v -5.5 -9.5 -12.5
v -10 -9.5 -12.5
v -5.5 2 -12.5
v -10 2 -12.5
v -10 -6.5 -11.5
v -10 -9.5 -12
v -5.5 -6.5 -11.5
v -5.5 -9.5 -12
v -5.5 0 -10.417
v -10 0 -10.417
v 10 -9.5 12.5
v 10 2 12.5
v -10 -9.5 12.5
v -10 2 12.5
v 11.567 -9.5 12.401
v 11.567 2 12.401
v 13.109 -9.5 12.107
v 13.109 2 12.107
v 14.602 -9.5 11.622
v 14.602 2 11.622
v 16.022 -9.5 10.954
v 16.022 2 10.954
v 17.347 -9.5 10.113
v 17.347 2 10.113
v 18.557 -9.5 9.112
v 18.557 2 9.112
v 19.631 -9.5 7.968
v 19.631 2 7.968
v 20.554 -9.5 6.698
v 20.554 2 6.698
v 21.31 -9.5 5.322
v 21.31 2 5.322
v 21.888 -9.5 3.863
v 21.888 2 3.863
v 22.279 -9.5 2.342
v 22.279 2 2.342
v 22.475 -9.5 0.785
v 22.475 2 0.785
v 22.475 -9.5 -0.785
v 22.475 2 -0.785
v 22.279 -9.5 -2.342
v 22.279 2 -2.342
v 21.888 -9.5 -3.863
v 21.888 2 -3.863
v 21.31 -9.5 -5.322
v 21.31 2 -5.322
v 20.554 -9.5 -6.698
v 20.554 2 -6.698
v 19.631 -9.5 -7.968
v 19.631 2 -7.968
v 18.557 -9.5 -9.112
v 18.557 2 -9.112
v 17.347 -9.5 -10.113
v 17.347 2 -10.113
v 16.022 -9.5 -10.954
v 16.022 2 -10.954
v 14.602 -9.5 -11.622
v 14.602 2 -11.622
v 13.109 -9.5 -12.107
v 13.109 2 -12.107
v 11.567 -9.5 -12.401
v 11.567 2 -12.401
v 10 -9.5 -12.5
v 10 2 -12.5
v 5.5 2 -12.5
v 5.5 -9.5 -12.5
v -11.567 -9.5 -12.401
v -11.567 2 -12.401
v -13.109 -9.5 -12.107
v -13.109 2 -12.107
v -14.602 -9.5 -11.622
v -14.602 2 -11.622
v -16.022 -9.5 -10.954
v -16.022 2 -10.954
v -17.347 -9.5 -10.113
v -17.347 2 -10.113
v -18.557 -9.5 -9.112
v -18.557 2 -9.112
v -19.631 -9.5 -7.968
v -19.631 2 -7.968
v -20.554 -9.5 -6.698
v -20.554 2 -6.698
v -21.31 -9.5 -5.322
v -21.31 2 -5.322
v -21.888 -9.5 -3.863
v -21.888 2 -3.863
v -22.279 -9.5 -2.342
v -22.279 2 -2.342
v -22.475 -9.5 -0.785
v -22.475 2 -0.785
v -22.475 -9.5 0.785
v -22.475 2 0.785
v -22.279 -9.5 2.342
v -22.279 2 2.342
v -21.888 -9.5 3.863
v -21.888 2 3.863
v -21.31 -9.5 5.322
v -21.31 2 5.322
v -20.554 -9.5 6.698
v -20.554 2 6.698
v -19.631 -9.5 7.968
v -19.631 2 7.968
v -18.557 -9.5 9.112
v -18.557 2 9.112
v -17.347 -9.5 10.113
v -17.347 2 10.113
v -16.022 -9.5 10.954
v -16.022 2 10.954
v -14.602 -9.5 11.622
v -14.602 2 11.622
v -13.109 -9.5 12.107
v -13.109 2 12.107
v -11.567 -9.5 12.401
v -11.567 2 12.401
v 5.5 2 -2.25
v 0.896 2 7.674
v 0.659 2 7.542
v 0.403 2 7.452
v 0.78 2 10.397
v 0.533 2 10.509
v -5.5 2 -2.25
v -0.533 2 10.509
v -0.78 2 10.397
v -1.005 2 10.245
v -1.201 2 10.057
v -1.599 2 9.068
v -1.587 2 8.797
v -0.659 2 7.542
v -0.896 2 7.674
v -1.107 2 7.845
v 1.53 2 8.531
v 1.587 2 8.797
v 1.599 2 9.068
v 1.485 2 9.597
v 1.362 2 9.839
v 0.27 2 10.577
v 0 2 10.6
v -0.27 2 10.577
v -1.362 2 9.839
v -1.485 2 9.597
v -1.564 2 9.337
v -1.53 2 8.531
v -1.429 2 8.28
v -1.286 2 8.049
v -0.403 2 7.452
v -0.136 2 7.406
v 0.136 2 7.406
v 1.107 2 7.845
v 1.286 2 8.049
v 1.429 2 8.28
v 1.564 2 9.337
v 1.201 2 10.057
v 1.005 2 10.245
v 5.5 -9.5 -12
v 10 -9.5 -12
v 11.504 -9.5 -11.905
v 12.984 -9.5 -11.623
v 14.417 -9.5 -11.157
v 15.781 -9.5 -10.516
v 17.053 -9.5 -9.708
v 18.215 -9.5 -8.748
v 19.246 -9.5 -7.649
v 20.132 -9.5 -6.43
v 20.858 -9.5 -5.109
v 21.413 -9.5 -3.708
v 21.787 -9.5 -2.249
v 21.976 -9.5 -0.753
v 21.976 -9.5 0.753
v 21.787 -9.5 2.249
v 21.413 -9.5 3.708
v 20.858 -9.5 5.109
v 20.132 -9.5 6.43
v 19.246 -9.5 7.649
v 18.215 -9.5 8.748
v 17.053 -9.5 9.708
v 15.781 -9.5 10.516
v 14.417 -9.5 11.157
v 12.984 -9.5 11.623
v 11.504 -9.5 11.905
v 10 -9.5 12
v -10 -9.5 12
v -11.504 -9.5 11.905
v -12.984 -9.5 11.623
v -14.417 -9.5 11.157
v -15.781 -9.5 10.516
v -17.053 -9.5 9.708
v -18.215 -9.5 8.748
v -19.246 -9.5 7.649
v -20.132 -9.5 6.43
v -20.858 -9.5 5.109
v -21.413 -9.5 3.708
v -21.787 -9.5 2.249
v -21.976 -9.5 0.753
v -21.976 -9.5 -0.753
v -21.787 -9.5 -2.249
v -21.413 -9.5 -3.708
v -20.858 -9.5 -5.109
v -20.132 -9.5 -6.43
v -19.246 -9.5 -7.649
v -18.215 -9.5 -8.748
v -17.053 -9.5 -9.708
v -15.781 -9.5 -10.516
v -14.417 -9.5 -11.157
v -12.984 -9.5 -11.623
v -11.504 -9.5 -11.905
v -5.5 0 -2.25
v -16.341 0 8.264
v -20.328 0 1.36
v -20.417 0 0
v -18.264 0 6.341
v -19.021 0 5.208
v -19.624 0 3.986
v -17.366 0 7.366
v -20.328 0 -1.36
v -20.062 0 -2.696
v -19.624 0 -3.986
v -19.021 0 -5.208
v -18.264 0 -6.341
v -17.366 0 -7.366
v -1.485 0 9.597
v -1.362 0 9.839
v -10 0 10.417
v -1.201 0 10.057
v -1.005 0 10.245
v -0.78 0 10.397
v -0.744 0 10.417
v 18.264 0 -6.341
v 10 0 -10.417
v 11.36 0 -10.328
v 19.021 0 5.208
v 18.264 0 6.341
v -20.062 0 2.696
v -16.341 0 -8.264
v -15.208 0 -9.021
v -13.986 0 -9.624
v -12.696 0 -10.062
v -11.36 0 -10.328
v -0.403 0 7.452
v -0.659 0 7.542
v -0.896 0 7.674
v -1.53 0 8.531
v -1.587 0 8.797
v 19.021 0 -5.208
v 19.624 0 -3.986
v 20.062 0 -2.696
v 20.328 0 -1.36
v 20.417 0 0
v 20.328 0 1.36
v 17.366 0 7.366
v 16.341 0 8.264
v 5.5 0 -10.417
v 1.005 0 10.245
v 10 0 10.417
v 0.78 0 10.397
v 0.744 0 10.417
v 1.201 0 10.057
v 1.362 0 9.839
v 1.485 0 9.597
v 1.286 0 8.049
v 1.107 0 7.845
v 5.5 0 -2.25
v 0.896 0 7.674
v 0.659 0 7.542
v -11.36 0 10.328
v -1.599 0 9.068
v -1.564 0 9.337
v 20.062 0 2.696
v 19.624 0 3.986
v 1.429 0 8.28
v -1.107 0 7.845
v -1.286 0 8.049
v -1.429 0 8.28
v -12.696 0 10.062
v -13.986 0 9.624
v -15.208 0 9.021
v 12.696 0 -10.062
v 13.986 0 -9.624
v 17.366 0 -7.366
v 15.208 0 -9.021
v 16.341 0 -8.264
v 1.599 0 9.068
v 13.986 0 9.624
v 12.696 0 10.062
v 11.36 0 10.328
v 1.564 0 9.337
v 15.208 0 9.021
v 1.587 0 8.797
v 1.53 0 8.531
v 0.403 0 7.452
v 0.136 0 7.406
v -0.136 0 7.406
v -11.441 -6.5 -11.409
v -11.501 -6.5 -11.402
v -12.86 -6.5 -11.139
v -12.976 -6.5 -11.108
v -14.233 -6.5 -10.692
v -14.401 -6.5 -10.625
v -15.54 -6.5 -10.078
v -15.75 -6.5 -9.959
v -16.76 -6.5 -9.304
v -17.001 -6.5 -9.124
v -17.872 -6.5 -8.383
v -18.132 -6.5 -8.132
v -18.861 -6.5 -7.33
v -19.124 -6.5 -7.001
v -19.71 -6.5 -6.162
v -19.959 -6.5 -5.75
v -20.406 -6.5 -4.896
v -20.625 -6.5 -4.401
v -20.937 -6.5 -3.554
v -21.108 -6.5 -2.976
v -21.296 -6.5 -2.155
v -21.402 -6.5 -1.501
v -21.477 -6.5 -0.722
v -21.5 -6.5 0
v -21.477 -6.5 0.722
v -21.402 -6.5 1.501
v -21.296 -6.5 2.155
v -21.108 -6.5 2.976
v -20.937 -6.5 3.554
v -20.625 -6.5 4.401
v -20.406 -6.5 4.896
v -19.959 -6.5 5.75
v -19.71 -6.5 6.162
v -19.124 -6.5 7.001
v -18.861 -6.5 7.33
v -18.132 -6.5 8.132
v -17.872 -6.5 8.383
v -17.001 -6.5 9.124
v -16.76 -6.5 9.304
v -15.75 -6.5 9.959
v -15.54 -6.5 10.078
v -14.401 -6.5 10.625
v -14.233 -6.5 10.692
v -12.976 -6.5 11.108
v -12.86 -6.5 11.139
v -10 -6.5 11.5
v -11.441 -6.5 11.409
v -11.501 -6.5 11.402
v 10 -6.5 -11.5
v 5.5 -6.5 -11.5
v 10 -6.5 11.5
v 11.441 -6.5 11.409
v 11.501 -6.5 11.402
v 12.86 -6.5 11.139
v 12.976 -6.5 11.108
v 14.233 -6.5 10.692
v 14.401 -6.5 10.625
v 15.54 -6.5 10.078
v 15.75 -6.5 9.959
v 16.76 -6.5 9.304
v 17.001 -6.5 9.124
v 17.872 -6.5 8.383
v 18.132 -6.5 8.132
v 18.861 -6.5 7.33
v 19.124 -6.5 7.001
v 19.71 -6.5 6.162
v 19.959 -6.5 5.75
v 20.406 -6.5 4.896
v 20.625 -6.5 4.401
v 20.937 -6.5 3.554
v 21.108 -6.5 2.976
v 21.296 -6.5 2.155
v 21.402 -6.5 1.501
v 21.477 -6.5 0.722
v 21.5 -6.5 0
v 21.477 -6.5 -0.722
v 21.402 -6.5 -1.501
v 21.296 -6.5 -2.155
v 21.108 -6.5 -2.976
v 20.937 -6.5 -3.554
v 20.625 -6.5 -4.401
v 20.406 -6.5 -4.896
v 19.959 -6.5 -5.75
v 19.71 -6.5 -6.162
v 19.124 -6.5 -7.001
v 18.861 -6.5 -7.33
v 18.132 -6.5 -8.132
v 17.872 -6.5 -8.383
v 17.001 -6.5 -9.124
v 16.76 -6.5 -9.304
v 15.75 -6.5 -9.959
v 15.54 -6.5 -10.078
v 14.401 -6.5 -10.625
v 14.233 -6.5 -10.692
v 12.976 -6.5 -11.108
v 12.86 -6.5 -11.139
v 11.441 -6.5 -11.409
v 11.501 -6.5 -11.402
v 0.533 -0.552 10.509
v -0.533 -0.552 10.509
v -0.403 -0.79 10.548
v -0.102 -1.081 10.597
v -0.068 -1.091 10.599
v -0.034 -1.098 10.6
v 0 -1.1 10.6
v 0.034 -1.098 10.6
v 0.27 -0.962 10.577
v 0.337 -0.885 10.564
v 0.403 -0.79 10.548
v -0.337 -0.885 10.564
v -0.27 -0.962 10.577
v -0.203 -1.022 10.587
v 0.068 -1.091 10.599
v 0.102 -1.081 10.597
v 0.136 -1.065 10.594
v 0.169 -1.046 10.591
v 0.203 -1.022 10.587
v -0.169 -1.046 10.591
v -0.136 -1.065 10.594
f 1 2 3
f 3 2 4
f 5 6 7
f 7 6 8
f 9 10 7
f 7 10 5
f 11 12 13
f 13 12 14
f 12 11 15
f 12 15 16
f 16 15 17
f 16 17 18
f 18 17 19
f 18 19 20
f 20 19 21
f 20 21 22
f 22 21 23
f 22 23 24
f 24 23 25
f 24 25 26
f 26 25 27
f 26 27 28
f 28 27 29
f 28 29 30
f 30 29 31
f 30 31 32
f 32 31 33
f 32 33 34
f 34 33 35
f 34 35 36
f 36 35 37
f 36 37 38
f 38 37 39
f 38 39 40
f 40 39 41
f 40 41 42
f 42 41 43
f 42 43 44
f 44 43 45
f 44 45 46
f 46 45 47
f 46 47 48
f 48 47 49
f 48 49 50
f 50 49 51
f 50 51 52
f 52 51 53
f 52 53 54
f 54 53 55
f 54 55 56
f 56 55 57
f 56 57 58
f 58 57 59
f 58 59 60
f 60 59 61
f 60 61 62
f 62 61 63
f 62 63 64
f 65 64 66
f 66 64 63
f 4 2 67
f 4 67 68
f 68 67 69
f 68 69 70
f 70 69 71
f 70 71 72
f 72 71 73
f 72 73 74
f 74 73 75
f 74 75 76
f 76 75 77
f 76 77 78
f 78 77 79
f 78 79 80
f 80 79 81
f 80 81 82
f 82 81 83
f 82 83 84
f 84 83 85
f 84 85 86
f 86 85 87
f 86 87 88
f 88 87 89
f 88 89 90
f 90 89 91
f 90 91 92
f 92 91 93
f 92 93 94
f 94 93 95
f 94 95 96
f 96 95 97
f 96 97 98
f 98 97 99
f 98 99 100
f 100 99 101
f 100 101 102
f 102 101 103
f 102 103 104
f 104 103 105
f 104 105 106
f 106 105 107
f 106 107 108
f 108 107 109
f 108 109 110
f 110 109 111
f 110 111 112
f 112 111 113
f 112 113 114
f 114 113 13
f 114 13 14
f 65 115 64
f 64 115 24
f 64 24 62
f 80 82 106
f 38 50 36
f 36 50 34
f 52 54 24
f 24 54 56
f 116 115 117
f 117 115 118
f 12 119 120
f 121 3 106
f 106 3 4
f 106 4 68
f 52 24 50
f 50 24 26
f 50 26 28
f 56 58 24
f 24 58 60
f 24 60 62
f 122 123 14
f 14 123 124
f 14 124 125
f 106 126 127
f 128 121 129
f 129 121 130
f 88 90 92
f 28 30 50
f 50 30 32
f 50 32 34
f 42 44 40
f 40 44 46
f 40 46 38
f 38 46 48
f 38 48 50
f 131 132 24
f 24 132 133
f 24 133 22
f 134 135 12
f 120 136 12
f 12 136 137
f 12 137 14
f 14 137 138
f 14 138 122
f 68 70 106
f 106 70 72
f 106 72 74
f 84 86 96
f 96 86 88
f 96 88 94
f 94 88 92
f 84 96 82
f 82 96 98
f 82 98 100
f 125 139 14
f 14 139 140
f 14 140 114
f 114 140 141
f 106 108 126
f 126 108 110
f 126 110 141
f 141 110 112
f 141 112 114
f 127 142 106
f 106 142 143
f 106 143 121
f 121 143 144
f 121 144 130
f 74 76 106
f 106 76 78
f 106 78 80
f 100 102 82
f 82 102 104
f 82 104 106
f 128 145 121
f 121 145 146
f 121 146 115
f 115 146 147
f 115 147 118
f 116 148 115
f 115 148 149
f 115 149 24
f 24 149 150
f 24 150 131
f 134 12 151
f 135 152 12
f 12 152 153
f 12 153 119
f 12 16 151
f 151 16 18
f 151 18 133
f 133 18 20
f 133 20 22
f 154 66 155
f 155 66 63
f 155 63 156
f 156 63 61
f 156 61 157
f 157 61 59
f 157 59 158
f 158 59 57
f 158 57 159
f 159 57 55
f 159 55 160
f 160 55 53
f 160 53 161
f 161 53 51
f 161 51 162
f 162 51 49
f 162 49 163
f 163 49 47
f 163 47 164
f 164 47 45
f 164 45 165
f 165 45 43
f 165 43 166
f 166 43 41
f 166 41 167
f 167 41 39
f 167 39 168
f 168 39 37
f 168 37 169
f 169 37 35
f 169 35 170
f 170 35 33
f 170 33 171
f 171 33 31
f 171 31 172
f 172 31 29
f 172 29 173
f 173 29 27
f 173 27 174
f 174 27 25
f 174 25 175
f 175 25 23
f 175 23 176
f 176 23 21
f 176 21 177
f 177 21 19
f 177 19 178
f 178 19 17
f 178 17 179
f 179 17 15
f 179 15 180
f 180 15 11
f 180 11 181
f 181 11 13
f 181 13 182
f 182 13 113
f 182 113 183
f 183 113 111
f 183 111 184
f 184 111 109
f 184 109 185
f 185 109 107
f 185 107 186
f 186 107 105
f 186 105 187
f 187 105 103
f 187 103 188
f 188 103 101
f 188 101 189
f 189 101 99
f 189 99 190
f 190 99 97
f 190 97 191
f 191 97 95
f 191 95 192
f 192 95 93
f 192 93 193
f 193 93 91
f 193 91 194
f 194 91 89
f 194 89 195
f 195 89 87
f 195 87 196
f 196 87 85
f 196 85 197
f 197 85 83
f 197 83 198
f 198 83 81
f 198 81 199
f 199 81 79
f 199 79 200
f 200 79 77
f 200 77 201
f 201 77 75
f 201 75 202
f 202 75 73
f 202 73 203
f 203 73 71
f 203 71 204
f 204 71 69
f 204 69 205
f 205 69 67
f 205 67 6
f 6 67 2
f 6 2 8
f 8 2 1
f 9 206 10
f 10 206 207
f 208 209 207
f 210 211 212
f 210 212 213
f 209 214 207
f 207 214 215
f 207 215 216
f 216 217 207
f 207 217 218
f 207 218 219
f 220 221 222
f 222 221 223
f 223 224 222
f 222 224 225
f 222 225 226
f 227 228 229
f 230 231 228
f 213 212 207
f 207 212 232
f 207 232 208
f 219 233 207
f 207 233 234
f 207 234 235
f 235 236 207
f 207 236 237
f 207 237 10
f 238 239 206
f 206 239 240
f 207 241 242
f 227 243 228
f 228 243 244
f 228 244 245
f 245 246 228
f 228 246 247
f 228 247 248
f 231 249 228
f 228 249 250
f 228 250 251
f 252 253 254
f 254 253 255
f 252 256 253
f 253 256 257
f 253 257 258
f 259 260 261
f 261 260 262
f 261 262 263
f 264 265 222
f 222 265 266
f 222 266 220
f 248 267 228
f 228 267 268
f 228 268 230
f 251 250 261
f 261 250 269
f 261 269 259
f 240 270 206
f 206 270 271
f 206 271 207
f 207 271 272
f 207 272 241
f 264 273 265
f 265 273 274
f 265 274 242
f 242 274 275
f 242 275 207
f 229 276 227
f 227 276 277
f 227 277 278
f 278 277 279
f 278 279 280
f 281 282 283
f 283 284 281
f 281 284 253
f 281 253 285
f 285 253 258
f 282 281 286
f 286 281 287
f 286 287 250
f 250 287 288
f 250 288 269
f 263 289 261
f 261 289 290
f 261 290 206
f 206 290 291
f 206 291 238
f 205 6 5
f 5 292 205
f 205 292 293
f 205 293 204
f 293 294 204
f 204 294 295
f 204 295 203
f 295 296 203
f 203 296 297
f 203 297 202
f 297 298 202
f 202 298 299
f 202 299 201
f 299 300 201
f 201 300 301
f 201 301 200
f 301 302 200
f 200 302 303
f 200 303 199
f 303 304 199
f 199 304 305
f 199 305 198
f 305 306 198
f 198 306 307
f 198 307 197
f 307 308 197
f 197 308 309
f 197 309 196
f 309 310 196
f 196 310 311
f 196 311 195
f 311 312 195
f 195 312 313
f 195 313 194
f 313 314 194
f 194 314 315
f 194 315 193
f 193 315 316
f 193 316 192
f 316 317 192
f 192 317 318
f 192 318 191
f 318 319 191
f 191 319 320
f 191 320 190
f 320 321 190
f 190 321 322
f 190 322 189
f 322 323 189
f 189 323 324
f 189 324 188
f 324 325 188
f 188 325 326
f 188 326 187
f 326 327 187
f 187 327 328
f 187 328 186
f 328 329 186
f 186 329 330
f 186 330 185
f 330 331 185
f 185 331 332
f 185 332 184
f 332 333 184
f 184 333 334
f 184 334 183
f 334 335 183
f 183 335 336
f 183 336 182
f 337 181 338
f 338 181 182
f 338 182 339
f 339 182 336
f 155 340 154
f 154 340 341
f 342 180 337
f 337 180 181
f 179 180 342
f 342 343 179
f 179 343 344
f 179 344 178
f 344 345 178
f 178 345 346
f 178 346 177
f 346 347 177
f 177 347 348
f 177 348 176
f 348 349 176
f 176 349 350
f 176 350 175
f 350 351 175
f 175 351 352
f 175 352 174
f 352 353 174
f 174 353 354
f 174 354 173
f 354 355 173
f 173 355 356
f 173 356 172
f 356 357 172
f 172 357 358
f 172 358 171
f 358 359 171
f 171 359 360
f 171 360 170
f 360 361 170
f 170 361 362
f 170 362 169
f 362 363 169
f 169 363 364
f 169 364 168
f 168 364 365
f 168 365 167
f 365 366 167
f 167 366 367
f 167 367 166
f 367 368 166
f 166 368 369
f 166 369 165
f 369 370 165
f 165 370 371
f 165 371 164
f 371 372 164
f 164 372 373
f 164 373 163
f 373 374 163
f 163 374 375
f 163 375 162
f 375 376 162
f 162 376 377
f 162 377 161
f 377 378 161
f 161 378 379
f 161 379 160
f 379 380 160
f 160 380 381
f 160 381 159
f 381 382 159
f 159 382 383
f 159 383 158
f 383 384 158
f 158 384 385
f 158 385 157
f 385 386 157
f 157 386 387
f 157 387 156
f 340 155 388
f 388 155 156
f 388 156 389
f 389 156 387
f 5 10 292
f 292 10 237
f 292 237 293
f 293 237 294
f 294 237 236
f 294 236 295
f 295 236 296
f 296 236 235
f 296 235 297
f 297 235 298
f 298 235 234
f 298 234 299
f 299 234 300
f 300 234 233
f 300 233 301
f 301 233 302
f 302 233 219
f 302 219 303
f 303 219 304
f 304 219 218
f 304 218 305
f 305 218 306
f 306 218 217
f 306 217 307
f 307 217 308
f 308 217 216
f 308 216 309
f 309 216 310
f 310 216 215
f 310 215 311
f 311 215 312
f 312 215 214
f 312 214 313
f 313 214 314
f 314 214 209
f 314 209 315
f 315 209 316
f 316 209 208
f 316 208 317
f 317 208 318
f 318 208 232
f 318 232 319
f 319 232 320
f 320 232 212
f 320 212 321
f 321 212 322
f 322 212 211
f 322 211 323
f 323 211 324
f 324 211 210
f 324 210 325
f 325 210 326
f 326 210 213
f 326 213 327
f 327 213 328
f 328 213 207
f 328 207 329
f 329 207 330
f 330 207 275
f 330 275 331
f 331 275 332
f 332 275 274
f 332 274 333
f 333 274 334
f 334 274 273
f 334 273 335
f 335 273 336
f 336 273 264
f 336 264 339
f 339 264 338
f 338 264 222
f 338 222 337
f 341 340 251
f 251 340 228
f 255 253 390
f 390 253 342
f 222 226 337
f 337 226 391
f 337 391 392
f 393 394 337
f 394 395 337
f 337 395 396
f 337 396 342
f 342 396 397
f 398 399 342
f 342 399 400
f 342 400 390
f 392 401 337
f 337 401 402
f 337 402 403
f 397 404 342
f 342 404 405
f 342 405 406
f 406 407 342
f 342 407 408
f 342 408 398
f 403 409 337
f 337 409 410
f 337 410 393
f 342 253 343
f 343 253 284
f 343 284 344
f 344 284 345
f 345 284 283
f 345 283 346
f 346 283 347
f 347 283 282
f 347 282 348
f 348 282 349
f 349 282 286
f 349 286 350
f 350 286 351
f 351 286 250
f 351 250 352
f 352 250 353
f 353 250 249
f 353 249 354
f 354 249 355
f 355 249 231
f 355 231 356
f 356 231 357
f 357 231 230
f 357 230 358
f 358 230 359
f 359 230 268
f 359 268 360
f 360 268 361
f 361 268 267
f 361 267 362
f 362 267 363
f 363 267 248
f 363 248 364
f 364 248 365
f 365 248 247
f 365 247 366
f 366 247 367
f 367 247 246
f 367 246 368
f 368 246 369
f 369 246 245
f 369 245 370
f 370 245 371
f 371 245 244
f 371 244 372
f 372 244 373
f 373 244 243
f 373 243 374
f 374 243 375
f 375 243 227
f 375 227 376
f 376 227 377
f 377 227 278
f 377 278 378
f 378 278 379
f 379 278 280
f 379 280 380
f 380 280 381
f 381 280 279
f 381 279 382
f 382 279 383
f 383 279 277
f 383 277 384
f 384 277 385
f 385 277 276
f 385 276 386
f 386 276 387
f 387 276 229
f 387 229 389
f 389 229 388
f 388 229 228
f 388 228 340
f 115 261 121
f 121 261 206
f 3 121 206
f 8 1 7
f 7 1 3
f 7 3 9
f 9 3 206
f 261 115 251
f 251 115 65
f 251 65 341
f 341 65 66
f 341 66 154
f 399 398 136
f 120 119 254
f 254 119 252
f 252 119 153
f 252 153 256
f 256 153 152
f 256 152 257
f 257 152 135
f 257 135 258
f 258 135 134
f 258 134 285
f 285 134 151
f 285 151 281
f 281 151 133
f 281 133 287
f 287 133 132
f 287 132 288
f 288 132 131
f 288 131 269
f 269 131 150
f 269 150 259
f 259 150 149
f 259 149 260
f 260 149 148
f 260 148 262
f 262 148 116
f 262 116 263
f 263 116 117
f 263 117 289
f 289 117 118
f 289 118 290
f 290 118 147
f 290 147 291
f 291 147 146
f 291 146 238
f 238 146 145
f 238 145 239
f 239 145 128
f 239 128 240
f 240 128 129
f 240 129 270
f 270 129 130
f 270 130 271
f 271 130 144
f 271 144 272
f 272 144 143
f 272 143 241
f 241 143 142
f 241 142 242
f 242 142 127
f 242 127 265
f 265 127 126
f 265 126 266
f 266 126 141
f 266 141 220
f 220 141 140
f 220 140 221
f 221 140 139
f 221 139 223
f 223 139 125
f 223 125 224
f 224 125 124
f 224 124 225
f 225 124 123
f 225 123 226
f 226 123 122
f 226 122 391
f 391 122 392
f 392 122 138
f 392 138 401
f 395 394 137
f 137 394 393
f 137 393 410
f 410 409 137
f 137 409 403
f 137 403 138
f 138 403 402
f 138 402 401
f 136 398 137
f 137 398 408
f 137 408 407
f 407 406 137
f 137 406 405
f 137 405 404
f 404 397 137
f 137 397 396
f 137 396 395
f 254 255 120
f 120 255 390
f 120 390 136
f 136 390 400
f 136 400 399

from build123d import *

# Parameters (mm, degrees)
BOSS_EXTRUDE1_DEPTH = 2
BOSS_EXTRUDE2_START = 9.5
BOSS_EXTRUDE2_DEPTH = 9.5
CHAMFER1_SIZE       = 0.5
CHAMFER1_SIZE2      = 3
CHAMFER2_SIZE       = 1.083333
CHAMFER2_SIZE_2     = 6.5
SKETCH4_W           = 11
SKETCH4_H           = 10.25
CUT_EXTRUDE1_DEPTH  = 29.191310718
SKETCH5_R           = 1.6
CUT_EXTRUDE2_DEPTH  = 29.191310718


with BuildPart() as part:
    # Sketch1 → Boss-Extrude1 (new body)
    with BuildSketch(Plane(origin=(0, 0, 0), x_dir=(1, 0, 0), z_dir=(0, 1, 0))):
        with BuildLine():
            Line((-22.5, 0), (-10, 0))
            Line((-10, 0), (0, 0))
            Line((0, 0), (0, 12.5))
            Line((0, 12.5), (-10, 12.5))
            ThreePointArc((-10, 12.5), (-18.838834765, 8.838834765), (-22.5, 0))
        make_face()
        with BuildLine():
            Line((0, 0), (-10, 0))
            Line((-10, 0), (-22.5, 0))
            ThreePointArc((-22.5, 0), (-18.838834765, -8.838834765), (-10, -12.5))
            Line((-10, -12.5), (0, -12.5))
            Line((0, -12.5), (0, 0))
        make_face()
        with BuildLine():
            Line((0, 12.5), (0, 0))
            Line((0, 0), (10, 0))
            Line((10, 0), (22.5, 0))
            ThreePointArc((22.5, 0), (18.838834765, 8.838834765), (10, 12.5))
            Line((10, 12.5), (0, 12.5))
        make_face()
        with BuildLine():
            Line((10, 0), (0, 0))
            Line((0, 0), (0, -12.5))
            Line((0, -12.5), (10, -12.5))
            ThreePointArc((10, -12.5), (18.838834765, -8.838834765), (22.5, 0))
            Line((22.5, 0), (10, 0))
        make_face()
    extrude(amount=BOSS_EXTRUDE1_DEPTH)

    # Sketch2 → Boss-Extrude2 (add)
    with BuildSketch(Plane.XZ.offset(BOSS_EXTRUDE2_START)):
        with BuildLine():
            Line((-10, -12.5), (10, -12.5))
            ThreePointArc((10, -12.5), (22.5, 0), (10, 12.5))
            Line((10, 12.5), (-10, 12.5))
            ThreePointArc((-10, 12.5), (-22.5, 0), (-10, -12.5))
        make_face()
        with BuildLine():
            Line((-10, -11.5), (10, -11.5))
            ThreePointArc((10, -11.5), (21.5, 0), (10, 11.5))
            Line((10, 11.5), (-10, 11.5))
            ThreePointArc((-10, 11.5), (-21.5, 0), (-10, -11.5))
        make_face(mode=Mode.SUBTRACT)
    extrude(amount=-BOSS_EXTRUDE2_DEPTH)

    # Chamfer1
    chamfer1_edges = [part.edges().sort_by_distance(p)[0] for p in [
        (-21.5, -9.5, 0),
        (0, -9.5, -11.5),
        (21.5, -9.5, 0),
        (0, -9.5, 11.5),
    ]]
    chamfer1_side = [part.faces().sort_by_distance(p)[0] for p in [
        (0, -9.5, -11.985218493),
    ]]
    chamfer(chamfer1_edges, length=CHAMFER1_SIZE, length2=CHAMFER1_SIZE2, reference=chamfer1_side[0])

    # Chamfer2
    # the kernel refuses this chamfer: 6.5, 1.083333 mm, written as the material it adds along each edge
    with BuildSketch(Plane(origin=(10, 0, 0), x_dir=(0, 0, -1), z_dir=(-1, 0, 0))) as chamfer2_piece_1:
        Polygon((11.5 - CHAMFER2_SIZE, 0), (11.5, CHAMFER2_SIZE_2), (11.5, 0), align=None)
    revolve(axis=Axis((10, 0, 0), (0, -1, 0)), revolution_arc=180)
    with BuildSketch(Plane(origin=(10, 0, 11.5), x_dir=(0, 0.22206230346399594, -0.9750324781156083), z_dir=(-1, 0, 0))) as chamfer2_piece_2:
        Polygon((CHAMFER2_SIZE * 0.975032478116, CHAMFER2_SIZE * 0.222062303464), (-CHAMFER2_SIZE_2 * 0.222062303464, CHAMFER2_SIZE_2 * 0.975032478116), (0, 0), align=None)
    extrude(amount=20)
    with BuildSketch(Plane(origin=(-10, 0, -11.5), x_dir=(0, -0.9999799892692318, -0.006326220127935647), z_dir=(1, 0, 0))) as chamfer2_piece_3:
        Polygon((CHAMFER2_SIZE_2 * 0.999979989269, -CHAMFER2_SIZE_2 * 0.00632622012794), (-CHAMFER2_SIZE * 0.00632622012794, -CHAMFER2_SIZE * 0.999979989269), (0, 0), align=None)
    extrude(amount=20)
    with BuildSketch(Plane(origin=(-10, 0, 0), x_dir=(0, 0, 1), z_dir=(1, 0, 0))) as chamfer2_piece_4:
        Polygon((11.5, CHAMFER2_SIZE_2), (11.5 - CHAMFER2_SIZE, 0), (11.5, 0), align=None)
    revolve(axis=Axis((-10, 0, 0), (0, -1, 0)), revolution_arc=180)

    # Sketch4 → Cut-Extrude1 (cut, through all)
    with BuildSketch(Plane(origin=(0, 2, 0), x_dir=(1, 0, 0), z_dir=(0, 1, 0))):
        with Locations((0, 7.375)):
            Rectangle(SKETCH4_W, SKETCH4_H)
    extrude(amount=-CUT_EXTRUDE1_DEPTH, mode=Mode.SUBTRACT)

    # Sketch5 → Cut-Extrude2 (cut, through all)
    with BuildSketch(Plane(origin=(0, 2, 0), x_dir=(1, 0, 0), z_dir=(0, 1, 0))):
        with Locations(Location((0, -9, 0), (0, 0, 270))):
            Circle(SKETCH5_R)
    extrude(amount=-CUT_EXTRUDE2_DEPTH, mode=Mode.SUBTRACT)


solid = part.part
